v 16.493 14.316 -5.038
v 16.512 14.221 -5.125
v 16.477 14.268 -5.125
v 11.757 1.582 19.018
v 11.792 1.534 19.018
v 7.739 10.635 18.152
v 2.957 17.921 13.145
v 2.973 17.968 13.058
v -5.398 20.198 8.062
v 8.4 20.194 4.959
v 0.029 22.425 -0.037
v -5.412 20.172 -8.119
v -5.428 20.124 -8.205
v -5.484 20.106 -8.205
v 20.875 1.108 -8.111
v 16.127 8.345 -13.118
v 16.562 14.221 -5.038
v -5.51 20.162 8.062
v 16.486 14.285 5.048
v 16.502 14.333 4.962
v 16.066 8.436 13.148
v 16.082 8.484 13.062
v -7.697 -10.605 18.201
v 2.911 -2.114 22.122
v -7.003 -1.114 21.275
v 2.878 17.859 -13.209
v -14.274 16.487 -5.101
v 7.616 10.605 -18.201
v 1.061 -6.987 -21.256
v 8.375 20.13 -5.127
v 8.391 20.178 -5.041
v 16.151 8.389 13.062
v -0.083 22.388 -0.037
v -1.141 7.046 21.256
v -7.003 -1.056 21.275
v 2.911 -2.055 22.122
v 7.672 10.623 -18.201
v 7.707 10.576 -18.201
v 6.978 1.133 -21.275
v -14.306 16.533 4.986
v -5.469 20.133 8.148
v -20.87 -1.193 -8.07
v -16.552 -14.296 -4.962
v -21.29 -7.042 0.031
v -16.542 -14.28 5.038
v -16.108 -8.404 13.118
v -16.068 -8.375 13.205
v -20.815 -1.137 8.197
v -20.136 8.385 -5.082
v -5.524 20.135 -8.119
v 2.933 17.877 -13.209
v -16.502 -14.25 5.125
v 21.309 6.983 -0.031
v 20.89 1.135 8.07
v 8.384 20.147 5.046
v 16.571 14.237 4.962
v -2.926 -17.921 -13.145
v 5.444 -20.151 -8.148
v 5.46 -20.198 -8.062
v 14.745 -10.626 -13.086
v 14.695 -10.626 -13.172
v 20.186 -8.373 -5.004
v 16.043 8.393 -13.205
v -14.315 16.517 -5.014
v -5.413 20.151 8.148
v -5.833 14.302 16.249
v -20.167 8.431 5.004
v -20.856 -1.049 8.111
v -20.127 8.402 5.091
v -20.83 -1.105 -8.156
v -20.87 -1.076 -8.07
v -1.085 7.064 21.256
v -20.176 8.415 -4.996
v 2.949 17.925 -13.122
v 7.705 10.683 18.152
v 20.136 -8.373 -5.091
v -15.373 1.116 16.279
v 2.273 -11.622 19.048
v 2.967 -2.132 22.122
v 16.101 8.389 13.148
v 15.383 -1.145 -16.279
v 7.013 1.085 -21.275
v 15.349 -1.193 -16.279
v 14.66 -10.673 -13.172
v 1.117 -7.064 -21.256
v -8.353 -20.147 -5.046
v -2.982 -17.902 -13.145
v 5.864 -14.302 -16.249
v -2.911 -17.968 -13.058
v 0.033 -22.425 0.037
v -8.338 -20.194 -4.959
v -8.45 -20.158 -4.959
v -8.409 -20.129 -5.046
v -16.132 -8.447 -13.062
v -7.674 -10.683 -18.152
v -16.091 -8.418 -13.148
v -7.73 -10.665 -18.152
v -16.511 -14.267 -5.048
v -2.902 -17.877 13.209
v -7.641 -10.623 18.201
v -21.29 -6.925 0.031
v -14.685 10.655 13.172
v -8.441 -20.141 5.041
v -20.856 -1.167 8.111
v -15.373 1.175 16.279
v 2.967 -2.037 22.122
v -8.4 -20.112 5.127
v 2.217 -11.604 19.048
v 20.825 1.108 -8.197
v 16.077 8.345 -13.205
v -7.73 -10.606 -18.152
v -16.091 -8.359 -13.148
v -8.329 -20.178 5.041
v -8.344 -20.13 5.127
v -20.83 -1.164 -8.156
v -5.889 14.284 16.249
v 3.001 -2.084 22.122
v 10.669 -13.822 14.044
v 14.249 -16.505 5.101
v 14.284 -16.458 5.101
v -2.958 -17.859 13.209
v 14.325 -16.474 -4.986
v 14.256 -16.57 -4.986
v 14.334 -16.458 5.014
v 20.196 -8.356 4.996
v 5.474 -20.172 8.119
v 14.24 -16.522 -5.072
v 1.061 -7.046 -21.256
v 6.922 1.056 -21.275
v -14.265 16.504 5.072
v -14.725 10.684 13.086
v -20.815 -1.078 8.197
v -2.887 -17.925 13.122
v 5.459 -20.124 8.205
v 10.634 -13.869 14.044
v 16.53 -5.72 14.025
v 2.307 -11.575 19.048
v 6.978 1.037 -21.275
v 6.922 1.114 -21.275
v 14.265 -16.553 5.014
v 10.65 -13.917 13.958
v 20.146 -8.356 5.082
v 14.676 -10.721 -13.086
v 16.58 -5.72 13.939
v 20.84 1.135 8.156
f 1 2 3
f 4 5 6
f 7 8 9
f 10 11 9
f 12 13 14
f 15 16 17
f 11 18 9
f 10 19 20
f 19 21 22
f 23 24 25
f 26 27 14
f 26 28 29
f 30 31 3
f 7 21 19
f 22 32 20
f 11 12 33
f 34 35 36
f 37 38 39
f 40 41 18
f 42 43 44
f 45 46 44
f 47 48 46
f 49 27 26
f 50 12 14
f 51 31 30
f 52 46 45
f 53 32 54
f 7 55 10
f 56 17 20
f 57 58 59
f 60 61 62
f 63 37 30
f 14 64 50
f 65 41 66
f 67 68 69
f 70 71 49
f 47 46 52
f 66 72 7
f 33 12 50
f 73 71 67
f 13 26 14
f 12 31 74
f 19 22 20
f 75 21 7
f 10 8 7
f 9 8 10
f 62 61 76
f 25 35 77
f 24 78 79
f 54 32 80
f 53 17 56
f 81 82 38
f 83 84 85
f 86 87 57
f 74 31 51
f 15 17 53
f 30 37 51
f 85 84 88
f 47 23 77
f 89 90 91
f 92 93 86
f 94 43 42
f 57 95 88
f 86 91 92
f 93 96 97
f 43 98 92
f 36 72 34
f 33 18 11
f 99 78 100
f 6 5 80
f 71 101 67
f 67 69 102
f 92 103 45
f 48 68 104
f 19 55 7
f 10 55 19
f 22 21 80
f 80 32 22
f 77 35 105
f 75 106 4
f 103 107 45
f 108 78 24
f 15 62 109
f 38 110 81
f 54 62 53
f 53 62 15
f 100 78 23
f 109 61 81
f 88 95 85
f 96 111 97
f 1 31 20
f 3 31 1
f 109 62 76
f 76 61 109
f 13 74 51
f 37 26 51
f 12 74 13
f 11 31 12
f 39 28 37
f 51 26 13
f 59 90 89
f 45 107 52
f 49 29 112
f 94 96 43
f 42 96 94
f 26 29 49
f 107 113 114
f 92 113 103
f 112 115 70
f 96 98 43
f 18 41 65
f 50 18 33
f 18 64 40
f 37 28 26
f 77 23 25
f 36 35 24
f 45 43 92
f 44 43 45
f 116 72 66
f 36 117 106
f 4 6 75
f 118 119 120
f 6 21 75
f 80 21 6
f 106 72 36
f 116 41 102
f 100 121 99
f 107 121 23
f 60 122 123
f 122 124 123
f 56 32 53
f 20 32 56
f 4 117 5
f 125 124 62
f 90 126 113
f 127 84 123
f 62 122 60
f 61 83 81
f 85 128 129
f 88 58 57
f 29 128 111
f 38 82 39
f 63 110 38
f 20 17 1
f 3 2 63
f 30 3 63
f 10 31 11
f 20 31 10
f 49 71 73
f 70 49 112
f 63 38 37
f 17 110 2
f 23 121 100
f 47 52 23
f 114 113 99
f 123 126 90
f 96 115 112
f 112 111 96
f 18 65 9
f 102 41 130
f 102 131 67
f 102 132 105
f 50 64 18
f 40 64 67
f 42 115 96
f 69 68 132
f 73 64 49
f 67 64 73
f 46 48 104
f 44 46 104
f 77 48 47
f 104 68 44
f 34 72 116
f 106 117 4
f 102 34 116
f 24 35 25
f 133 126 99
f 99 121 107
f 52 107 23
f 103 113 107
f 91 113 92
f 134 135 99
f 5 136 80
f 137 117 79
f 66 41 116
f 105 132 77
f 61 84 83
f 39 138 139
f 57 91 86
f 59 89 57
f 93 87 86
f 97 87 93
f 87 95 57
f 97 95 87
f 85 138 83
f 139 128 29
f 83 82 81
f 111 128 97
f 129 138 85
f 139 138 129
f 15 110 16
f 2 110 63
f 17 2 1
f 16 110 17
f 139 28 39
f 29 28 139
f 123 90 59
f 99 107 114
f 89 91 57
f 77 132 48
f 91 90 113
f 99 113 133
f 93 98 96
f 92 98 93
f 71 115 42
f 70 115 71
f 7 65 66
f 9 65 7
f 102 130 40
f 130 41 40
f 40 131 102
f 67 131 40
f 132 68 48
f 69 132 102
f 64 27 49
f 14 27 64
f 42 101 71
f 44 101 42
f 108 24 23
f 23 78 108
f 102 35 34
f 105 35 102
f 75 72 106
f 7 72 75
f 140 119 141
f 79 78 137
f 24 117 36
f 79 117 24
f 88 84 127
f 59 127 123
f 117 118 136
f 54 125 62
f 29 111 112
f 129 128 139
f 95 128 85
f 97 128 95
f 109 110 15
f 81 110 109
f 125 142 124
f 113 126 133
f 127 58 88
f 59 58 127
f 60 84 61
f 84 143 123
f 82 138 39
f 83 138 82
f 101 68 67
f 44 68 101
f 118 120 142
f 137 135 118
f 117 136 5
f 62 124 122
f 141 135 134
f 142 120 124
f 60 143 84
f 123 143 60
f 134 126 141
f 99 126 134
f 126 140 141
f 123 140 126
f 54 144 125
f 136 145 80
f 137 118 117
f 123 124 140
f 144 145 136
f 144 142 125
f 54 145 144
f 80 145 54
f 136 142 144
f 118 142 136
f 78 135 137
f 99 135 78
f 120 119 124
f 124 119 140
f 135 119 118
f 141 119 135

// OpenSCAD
// Auto-generated OpenSCAD file

    inner_points = 10*[[-1.4233723682537531, 1.6457852900416023, -0.5014412196626961], [2.008648888563406, -0.8372573952932124, -0.5004285205004894], [-1.4224690336574413, 1.6474417097723555, 0.4985570004658611], [2.009552223159718, -0.8356009755624593, 0.4995696996280678], [-2.0095385857181056, 0.8355966311995443, -0.4995696996280678], [1.4224826710990532, -1.6474460541352707, -0.4985570004658611], [-2.0086352511217935, 0.8372530509302974, 0.5004285205004894], [1.423386005695365, -1.6457896344045175, 0.5014412196626961], [0.8359799646525549, 2.0082601670666564, -0.5040825860297667], [1.6461702814856678, 1.4220933022940199, -0.5038435201867288], [0.8368832992488663, 2.00991658679741, 0.4959156340987906], [1.6470736160819792, 1.4237497220247732, 0.4961546999418284], [-1.6470599786403672, -1.4237540663876884, -0.4961546999418284], [-0.8368696618072541, -2.0099209311603246, -0.4959156340987906], [-1.6461566440440558, -1.422097646656935, 0.5038435201867288], [-0.8359663272109427, -2.008264511429571, 0.5040825860297667], [0.6962717924913376, 0.1085003715638816, -2.118846446017479], [-0.11009193758537278, 0.7016839429152616, 2.1169749259828508], [1.6480320655550427, -0.5719776375576558, 1.393888385167343], [0.11010557502698498, -0.7016882872781766, -2.1169749259828508], [-0.6962581550497254, -0.10850471592679665, 2.118846446017479], [1.06186584809069, -1.3821662963997143, 1.3957599052019711], [1.4644723902117522, -1.0625562736720129, -1.308582190320151], [-1.4644587527701403, 1.0625519293090977, 1.308582190320151], [0.29512687645032143, -0.20842950773982483, 2.203526758362048], [-0.00016142577026723412, 2.2329452678405355, -0.0036985527992669564], [2.1209443610548697, 0.6983404927868097, -0.003072670296644639], [-2.1209307236132573, -0.6983448371497246, 0.003072670296644639], [0.00017506321187943133, -2.2329496122034502, 0.0036985527992669564], [0.7656742112737905, 1.0575520594498922, -1.8114636260879013], [0.768942506546459, 1.0635450423353943, 1.806563923026618], [-0.7689288691048468, -1.0635493866983095, -1.806563923026618], [-0.7656605738321783, -1.0575564038128074, 1.8114636260879013], [-0.5443379241219212, 2.007646389461735, -0.8118522226189285], [2.077493015862125, 0.11077056889955657, -0.8110785892997597], [-0.5428762980418754, 2.0103265328857303, 0.8061788862384766], [2.078954641942171, 0.11345071232355149, 0.8069525195576454], [-2.0789410045005585, -0.11345505668646653, -0.8069525195576454], [0.5428899354834876, -2.010330877248645, -0.8061788862384766], [-2.0774793784205126, -0.11077491326247162, 0.8110785892997597], [0.5443515615635334, -2.00765073382465, 0.8118522226189285], [0.2918034663009007, 1.782961288687856, -1.3122362558494283], [1.6027189362929237, 0.834523378406767, -1.311849439189844], [0.29416842697725787, 1.7872978518426046, 1.3057930731365341], [1.6050838969692809, 0.8388599415615156, 1.3061798897961183], [-1.605070259527669, -0.8388642859244305, -1.3061798897961183], [-0.29415478953564567, -1.7873021962055198, -1.3057930731365341], [-1.6027052988513117, -0.834527722769682, 1.311849439189844], [-0.2917898288592885, -1.7829656330507713, 1.3122362558494283], [1.5333165175104713, -0.1145283094792439, -1.6192322591194215], [-0.5848660171545743, 1.425436752422472, 1.6162040760927663], [1.174161320582153, 0.1534315916803079, 1.8931157554058156], [0.5848796545961865, -1.4254410967853872, -1.6162040760927663], [-1.5333028800688593, 0.11452396511632885, 1.6192322591194215], [0.22572445766786847, -1.1574811956258355, 1.8961439384324708]];

    outer_points = 10*[[-0.4087698026972166, -1.4203715087449695, -1.673774179227355], [-0.5453153515301497, 2.007794346482601, 0.8108396926136778], [-0.4531779550161096, -2.007794346482601, -0.8657133363993599], [-0.5897235038490427, 1.4203715087449695, 1.6189005354416732], [0.5897235038490427, -1.4203715087449695, -1.6189005354416732], [0.4531779550161096, 2.007794346482601, 0.8657133363993599], [0.5453153515301497, -2.007794346482601, -0.8108396926136778], [0.4087698026972166, 1.4203715087449695, 1.673774179227355], [-2.076521668870004, -0.11092867111988897, -0.8135235498353439], [-2.108755700419593, 0.6983515088575205, -0.22698577824190946], [-2.1209298211888967, -0.6983515088575205, -0.005462707007348522], [-2.1531638527384858, 0.11092867111988897, 0.5810750645860858], [2.1531638527384858, -0.11092867111988897, -0.5810750645860858], [2.1209298211888967, 0.6983515088575205, 0.005462707007348522], [2.108755700419593, -0.6983515088575205, 0.22698577824190946], [2.076521668870004, 0.11092867111988897, 0.8135235498353439], [-0.4213056930589264, 1.6488216260849224, -1.4456682661837046], [-0.5771876134873328, -1.6488216260849224, 1.3907946223980228], [-0.6150278656383756, 0.53304345100355, 2.0793444595185084], [0.5771876134873328, 1.6488216260849224, -1.3907946223980228], [0.4213056930589264, -1.6488216260849224, 1.4456682661837046], [0.3834654409078836, 0.53304345100355, 2.1342181033041907], [-0.0001808847962030731, 2.2329480762724665, 0.003291420904545055], [0.0001808847962030731, -2.2329480762724665, -0.003291420904545055], [-0.10951326718439108, -1.001553116411396, 1.9927283248895242], [-1.7640964652161863, -1.059361508801245, -0.867055265010193], [-1.8484862554074475, 1.059361508801245, 0.6685205567070409], [1.8484862554074475, -1.059361508801245, -0.6685205567070409], [1.7640964652161863, 1.059361508801245, 0.867055265010193], [-1.2267096048050186, 1.0626578963513327, -1.5336263294235217], [-1.387379809272356, -1.0626578963513327, 1.3899652649060519], [1.387379809272356, 1.0626578963513327, -1.3899652649060519], [1.2267096048050186, -1.0626578963513327, 1.5336263294235217], [-1.2189619984822397, -0.8342077790113795, -1.674603536719326], [-1.3232735157655835, 1.7846778962387817, 0.2234725635282728], [-1.290815898311791, -1.7846778962387817, -0.3671336280457428], [-1.3951274155951348, 0.8342077790113795, 1.530942472201856], [1.3951274155951348, -0.8342077790113795, -1.530942472201856], [1.290815898311791, 1.7846778962387817, 0.3671336280457428], [1.3232735157655835, -1.7846778962387817, -0.2234725635282728], [1.2189619984822397, 0.8342077790113795, 1.674603536719326], [-1.5313872021360573, 0.11422505866997656, -1.6210718215444768], [-1.5835429607777292, 1.4236678962950573, -0.6720337714206774], [-1.6476492542845016, -1.4236678962950573, 0.49445892995710145], [-1.6998050129261735, -0.11422505866997656, 1.4434969800809008], [1.6998050129261735, 0.11422505866997656, -1.4434969800809008], [1.6476492542845016, 1.4236678962950573, -0.49445892995710145], [1.5835429607777292, -1.4236678962950573, 0.6720337714206774], [1.5313872021360573, -0.11422505866997656, 1.6210718215444768], [-0.7781390490316369, 2.009831626028647, -0.5840757081808603], [-0.8374570584994785, -2.009831626028647, 0.4952882874490723], [-0.9197054629694142, -0.415389386677806, 1.991898967397554], [0.8374570584994785, 2.009831626028647, -0.4952882874490723], [0.7781390490316369, -2.009831626028647, 0.5840757081808603], [0.6958906445617011, -0.415389386677806, 2.080686388129342]];

    // Convex hull for inner set (I)
    module inner_hull() {
        hull() {
            for (p = inner_points) {
                translate(p) sphere(r=0.1);
            }
        }
    }

    // Convex hull for outer set (O) minus inner hull (O \ I)
    module outer_minus_inner() {
        difference() {
            hull() {
                for (p = outer_points) {
                    translate(p) sphere(r=0.1);
                }
            }
            inner_hull(); // Subtract inner hull
        }
    }

    // Convex hull for outer set (O) minus all translated inner hulls
    module outer_minus_AllTranslationInner() {
        difference() {
            hull() {
                for (p = outer_points) {
                    translate(p) sphere(r=0.1);
                }
            }
            hull() {
                translate([0,0,50]) inner_hull();
                translate([0,0,-50]) inner_hull();
            }; // Subtract translated inner hulls
        }
    }

    // Difference between outer_minus_inner and outer_minus_AllTranslationInner
    module outer_minus_inner_diff() {
        difference() {
            // Outer minus inner
            difference() {
                hull() {
                    for (p = outer_points) {
                        translate(p) sphere(r=0.1);
                    }
                }
                inner_hull();
            }

            // Subtract Outer minus AllTranslationInner
            difference() {
                hull() {
                    for (p = outer_points) {
                        translate(p) sphere(r=0.1);
                    }
                }
                hull() {
                    translate([0,0,50]) inner_hull();
                    translate([0,0,-50]) inner_hull();
                };
            }
        }
    }

    // Rendering all with colors applied
    color([1, 0, 0, 0.5]) inner_hull(); // Transparent red
    
